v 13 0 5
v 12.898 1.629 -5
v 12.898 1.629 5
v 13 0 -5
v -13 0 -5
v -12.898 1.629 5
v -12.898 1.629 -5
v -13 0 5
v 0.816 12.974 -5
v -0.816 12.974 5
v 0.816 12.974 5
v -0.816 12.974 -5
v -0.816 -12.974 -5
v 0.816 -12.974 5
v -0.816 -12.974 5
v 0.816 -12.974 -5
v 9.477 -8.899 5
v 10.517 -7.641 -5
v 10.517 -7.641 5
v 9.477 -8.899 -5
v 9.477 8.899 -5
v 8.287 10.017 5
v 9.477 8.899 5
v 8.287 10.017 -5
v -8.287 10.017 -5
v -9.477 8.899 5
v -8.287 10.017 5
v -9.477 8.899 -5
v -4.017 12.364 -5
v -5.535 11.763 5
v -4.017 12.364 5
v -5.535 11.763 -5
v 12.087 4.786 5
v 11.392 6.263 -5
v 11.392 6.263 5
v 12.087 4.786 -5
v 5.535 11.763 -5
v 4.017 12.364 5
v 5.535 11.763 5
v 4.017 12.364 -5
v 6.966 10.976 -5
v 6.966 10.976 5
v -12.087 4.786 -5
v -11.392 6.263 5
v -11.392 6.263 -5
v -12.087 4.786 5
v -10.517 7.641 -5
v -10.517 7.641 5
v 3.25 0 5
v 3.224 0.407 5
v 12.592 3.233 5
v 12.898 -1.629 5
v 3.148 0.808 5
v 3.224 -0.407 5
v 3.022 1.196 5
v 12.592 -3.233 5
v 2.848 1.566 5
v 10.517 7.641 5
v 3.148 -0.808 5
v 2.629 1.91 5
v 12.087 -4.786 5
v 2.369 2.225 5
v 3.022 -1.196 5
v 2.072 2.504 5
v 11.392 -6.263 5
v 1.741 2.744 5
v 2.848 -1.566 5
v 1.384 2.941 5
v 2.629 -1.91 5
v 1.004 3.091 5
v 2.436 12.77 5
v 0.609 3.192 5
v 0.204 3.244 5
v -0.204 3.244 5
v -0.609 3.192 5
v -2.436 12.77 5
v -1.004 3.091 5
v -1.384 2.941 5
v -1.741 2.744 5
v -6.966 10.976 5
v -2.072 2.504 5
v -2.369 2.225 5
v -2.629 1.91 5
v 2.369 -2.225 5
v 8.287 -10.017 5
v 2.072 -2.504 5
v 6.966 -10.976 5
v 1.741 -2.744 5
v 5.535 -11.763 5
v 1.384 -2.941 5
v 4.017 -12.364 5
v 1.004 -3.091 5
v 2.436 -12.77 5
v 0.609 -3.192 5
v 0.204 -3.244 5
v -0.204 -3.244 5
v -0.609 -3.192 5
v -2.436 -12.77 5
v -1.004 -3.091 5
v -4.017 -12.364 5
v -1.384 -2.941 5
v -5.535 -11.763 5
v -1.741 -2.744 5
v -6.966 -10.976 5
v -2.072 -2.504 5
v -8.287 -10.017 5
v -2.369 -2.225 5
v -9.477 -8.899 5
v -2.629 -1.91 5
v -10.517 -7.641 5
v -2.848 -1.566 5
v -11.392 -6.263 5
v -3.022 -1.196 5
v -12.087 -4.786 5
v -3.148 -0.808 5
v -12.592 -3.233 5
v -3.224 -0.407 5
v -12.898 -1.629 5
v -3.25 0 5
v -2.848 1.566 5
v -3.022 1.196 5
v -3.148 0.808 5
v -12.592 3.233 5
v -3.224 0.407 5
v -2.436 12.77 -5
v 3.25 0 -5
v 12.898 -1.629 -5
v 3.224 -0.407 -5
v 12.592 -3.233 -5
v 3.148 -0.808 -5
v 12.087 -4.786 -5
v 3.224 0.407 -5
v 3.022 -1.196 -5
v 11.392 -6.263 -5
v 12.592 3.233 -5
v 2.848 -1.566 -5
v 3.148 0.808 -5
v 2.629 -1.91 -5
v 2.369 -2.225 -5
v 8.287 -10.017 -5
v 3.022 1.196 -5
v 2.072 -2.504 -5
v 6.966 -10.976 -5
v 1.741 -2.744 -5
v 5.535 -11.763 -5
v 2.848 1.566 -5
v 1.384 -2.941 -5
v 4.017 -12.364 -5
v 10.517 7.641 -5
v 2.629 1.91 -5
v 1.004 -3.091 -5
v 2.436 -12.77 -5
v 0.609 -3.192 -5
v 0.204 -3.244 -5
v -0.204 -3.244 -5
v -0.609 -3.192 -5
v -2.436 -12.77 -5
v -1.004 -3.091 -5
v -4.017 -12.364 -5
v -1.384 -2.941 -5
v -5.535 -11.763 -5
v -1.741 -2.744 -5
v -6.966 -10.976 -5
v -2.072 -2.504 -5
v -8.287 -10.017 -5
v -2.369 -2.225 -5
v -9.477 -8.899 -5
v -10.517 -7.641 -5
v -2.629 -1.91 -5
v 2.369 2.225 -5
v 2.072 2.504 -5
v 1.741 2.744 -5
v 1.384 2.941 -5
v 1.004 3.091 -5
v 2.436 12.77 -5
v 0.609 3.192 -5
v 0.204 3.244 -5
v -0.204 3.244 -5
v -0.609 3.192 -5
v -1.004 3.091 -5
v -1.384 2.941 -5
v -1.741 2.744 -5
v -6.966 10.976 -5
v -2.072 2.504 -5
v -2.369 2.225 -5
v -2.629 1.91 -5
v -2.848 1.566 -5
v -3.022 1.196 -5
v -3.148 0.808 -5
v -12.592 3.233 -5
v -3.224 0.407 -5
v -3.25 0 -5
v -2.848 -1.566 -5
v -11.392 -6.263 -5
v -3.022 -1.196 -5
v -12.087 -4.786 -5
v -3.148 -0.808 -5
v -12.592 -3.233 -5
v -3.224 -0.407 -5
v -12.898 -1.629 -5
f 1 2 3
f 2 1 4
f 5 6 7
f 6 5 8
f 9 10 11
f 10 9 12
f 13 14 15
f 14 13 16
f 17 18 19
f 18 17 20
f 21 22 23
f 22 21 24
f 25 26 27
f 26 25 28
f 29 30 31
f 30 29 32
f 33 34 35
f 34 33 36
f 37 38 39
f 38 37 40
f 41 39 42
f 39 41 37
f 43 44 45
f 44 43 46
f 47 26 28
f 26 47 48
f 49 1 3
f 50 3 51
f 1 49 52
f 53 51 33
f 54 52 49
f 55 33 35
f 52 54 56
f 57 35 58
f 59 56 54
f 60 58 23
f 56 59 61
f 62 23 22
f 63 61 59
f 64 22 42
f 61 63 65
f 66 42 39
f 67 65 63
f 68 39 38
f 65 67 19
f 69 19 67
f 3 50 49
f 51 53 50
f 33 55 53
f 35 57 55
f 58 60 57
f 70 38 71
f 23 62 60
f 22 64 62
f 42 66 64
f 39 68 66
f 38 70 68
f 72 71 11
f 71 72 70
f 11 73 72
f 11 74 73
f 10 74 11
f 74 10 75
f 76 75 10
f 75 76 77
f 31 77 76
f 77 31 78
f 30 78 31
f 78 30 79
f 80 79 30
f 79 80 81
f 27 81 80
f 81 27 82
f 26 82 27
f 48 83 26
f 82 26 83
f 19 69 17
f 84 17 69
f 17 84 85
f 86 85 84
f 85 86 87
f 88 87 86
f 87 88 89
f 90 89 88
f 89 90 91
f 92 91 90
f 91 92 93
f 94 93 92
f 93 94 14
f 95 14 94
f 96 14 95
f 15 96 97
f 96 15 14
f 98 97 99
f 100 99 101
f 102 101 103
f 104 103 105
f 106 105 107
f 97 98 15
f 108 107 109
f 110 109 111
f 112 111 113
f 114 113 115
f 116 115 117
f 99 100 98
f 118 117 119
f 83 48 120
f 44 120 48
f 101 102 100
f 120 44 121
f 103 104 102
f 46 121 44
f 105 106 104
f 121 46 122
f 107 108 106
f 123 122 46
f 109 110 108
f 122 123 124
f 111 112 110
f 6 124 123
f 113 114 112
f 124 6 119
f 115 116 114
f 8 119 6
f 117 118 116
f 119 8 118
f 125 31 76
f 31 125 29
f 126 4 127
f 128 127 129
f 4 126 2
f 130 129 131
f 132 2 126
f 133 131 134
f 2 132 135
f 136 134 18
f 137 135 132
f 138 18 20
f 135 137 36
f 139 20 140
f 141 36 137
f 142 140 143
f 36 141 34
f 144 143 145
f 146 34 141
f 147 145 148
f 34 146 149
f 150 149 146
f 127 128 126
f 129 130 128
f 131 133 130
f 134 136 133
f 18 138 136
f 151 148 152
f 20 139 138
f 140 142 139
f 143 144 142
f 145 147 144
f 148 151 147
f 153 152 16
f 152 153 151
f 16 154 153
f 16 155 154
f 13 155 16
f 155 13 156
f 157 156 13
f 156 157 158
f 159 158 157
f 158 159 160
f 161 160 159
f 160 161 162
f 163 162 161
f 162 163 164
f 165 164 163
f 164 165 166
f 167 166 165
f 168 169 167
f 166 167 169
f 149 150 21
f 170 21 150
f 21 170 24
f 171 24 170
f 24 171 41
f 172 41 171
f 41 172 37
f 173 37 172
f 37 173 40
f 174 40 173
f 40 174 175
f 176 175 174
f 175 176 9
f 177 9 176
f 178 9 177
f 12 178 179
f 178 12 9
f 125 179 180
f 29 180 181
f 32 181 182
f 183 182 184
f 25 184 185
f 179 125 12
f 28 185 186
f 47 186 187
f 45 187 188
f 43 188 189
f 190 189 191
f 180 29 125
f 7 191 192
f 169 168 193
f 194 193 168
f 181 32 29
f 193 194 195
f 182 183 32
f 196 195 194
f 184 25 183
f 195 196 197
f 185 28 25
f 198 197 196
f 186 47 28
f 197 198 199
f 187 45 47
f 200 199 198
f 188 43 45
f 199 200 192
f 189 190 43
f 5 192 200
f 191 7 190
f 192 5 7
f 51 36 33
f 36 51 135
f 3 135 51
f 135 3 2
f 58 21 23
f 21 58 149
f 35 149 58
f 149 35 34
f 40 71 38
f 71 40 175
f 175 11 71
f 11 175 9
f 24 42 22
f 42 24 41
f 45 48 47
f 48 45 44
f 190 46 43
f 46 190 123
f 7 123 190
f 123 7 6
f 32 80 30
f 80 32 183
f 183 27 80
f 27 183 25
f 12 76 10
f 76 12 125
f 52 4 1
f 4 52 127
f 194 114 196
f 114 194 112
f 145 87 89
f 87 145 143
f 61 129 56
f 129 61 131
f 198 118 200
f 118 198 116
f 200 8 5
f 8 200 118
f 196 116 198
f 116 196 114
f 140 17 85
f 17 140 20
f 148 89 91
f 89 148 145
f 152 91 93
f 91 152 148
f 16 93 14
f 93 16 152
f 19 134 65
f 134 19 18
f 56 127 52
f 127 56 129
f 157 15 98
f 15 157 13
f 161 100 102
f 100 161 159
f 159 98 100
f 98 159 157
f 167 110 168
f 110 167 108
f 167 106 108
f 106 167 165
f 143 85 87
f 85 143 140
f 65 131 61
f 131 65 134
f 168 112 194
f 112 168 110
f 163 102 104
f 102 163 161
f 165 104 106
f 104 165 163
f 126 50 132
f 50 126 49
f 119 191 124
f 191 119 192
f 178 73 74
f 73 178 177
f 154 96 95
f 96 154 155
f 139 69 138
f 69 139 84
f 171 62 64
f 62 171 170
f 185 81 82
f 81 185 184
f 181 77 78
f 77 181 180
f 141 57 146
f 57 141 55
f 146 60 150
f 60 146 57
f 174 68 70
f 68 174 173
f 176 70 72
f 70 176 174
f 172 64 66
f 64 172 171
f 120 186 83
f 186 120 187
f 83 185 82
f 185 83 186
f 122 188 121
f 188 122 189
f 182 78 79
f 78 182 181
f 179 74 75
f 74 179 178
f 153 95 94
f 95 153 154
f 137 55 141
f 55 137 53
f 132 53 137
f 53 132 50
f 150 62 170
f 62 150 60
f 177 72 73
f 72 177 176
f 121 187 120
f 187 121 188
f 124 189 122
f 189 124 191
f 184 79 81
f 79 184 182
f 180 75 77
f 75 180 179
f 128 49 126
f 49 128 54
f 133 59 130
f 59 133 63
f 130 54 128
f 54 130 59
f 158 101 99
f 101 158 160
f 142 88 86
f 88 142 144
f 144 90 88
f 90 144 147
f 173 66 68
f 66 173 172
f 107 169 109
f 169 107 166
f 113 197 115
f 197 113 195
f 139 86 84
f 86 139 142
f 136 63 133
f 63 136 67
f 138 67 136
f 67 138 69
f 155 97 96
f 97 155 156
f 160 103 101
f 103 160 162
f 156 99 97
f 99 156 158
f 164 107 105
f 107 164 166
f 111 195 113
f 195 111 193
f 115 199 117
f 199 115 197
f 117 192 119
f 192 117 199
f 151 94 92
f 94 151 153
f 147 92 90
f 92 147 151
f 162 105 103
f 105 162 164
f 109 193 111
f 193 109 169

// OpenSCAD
$fn = 50;


difference() {
	union() {
		translate(v = [0, 0, -5.0000000000]) {
			cylinder(h = 10, r = 13.0000000000);
		}
	}
	union() {
		translate(v = [0, 0, -100.0000000000]) {
			cylinder(h = 200, r = 3.2500000000);
		}
	}
}
